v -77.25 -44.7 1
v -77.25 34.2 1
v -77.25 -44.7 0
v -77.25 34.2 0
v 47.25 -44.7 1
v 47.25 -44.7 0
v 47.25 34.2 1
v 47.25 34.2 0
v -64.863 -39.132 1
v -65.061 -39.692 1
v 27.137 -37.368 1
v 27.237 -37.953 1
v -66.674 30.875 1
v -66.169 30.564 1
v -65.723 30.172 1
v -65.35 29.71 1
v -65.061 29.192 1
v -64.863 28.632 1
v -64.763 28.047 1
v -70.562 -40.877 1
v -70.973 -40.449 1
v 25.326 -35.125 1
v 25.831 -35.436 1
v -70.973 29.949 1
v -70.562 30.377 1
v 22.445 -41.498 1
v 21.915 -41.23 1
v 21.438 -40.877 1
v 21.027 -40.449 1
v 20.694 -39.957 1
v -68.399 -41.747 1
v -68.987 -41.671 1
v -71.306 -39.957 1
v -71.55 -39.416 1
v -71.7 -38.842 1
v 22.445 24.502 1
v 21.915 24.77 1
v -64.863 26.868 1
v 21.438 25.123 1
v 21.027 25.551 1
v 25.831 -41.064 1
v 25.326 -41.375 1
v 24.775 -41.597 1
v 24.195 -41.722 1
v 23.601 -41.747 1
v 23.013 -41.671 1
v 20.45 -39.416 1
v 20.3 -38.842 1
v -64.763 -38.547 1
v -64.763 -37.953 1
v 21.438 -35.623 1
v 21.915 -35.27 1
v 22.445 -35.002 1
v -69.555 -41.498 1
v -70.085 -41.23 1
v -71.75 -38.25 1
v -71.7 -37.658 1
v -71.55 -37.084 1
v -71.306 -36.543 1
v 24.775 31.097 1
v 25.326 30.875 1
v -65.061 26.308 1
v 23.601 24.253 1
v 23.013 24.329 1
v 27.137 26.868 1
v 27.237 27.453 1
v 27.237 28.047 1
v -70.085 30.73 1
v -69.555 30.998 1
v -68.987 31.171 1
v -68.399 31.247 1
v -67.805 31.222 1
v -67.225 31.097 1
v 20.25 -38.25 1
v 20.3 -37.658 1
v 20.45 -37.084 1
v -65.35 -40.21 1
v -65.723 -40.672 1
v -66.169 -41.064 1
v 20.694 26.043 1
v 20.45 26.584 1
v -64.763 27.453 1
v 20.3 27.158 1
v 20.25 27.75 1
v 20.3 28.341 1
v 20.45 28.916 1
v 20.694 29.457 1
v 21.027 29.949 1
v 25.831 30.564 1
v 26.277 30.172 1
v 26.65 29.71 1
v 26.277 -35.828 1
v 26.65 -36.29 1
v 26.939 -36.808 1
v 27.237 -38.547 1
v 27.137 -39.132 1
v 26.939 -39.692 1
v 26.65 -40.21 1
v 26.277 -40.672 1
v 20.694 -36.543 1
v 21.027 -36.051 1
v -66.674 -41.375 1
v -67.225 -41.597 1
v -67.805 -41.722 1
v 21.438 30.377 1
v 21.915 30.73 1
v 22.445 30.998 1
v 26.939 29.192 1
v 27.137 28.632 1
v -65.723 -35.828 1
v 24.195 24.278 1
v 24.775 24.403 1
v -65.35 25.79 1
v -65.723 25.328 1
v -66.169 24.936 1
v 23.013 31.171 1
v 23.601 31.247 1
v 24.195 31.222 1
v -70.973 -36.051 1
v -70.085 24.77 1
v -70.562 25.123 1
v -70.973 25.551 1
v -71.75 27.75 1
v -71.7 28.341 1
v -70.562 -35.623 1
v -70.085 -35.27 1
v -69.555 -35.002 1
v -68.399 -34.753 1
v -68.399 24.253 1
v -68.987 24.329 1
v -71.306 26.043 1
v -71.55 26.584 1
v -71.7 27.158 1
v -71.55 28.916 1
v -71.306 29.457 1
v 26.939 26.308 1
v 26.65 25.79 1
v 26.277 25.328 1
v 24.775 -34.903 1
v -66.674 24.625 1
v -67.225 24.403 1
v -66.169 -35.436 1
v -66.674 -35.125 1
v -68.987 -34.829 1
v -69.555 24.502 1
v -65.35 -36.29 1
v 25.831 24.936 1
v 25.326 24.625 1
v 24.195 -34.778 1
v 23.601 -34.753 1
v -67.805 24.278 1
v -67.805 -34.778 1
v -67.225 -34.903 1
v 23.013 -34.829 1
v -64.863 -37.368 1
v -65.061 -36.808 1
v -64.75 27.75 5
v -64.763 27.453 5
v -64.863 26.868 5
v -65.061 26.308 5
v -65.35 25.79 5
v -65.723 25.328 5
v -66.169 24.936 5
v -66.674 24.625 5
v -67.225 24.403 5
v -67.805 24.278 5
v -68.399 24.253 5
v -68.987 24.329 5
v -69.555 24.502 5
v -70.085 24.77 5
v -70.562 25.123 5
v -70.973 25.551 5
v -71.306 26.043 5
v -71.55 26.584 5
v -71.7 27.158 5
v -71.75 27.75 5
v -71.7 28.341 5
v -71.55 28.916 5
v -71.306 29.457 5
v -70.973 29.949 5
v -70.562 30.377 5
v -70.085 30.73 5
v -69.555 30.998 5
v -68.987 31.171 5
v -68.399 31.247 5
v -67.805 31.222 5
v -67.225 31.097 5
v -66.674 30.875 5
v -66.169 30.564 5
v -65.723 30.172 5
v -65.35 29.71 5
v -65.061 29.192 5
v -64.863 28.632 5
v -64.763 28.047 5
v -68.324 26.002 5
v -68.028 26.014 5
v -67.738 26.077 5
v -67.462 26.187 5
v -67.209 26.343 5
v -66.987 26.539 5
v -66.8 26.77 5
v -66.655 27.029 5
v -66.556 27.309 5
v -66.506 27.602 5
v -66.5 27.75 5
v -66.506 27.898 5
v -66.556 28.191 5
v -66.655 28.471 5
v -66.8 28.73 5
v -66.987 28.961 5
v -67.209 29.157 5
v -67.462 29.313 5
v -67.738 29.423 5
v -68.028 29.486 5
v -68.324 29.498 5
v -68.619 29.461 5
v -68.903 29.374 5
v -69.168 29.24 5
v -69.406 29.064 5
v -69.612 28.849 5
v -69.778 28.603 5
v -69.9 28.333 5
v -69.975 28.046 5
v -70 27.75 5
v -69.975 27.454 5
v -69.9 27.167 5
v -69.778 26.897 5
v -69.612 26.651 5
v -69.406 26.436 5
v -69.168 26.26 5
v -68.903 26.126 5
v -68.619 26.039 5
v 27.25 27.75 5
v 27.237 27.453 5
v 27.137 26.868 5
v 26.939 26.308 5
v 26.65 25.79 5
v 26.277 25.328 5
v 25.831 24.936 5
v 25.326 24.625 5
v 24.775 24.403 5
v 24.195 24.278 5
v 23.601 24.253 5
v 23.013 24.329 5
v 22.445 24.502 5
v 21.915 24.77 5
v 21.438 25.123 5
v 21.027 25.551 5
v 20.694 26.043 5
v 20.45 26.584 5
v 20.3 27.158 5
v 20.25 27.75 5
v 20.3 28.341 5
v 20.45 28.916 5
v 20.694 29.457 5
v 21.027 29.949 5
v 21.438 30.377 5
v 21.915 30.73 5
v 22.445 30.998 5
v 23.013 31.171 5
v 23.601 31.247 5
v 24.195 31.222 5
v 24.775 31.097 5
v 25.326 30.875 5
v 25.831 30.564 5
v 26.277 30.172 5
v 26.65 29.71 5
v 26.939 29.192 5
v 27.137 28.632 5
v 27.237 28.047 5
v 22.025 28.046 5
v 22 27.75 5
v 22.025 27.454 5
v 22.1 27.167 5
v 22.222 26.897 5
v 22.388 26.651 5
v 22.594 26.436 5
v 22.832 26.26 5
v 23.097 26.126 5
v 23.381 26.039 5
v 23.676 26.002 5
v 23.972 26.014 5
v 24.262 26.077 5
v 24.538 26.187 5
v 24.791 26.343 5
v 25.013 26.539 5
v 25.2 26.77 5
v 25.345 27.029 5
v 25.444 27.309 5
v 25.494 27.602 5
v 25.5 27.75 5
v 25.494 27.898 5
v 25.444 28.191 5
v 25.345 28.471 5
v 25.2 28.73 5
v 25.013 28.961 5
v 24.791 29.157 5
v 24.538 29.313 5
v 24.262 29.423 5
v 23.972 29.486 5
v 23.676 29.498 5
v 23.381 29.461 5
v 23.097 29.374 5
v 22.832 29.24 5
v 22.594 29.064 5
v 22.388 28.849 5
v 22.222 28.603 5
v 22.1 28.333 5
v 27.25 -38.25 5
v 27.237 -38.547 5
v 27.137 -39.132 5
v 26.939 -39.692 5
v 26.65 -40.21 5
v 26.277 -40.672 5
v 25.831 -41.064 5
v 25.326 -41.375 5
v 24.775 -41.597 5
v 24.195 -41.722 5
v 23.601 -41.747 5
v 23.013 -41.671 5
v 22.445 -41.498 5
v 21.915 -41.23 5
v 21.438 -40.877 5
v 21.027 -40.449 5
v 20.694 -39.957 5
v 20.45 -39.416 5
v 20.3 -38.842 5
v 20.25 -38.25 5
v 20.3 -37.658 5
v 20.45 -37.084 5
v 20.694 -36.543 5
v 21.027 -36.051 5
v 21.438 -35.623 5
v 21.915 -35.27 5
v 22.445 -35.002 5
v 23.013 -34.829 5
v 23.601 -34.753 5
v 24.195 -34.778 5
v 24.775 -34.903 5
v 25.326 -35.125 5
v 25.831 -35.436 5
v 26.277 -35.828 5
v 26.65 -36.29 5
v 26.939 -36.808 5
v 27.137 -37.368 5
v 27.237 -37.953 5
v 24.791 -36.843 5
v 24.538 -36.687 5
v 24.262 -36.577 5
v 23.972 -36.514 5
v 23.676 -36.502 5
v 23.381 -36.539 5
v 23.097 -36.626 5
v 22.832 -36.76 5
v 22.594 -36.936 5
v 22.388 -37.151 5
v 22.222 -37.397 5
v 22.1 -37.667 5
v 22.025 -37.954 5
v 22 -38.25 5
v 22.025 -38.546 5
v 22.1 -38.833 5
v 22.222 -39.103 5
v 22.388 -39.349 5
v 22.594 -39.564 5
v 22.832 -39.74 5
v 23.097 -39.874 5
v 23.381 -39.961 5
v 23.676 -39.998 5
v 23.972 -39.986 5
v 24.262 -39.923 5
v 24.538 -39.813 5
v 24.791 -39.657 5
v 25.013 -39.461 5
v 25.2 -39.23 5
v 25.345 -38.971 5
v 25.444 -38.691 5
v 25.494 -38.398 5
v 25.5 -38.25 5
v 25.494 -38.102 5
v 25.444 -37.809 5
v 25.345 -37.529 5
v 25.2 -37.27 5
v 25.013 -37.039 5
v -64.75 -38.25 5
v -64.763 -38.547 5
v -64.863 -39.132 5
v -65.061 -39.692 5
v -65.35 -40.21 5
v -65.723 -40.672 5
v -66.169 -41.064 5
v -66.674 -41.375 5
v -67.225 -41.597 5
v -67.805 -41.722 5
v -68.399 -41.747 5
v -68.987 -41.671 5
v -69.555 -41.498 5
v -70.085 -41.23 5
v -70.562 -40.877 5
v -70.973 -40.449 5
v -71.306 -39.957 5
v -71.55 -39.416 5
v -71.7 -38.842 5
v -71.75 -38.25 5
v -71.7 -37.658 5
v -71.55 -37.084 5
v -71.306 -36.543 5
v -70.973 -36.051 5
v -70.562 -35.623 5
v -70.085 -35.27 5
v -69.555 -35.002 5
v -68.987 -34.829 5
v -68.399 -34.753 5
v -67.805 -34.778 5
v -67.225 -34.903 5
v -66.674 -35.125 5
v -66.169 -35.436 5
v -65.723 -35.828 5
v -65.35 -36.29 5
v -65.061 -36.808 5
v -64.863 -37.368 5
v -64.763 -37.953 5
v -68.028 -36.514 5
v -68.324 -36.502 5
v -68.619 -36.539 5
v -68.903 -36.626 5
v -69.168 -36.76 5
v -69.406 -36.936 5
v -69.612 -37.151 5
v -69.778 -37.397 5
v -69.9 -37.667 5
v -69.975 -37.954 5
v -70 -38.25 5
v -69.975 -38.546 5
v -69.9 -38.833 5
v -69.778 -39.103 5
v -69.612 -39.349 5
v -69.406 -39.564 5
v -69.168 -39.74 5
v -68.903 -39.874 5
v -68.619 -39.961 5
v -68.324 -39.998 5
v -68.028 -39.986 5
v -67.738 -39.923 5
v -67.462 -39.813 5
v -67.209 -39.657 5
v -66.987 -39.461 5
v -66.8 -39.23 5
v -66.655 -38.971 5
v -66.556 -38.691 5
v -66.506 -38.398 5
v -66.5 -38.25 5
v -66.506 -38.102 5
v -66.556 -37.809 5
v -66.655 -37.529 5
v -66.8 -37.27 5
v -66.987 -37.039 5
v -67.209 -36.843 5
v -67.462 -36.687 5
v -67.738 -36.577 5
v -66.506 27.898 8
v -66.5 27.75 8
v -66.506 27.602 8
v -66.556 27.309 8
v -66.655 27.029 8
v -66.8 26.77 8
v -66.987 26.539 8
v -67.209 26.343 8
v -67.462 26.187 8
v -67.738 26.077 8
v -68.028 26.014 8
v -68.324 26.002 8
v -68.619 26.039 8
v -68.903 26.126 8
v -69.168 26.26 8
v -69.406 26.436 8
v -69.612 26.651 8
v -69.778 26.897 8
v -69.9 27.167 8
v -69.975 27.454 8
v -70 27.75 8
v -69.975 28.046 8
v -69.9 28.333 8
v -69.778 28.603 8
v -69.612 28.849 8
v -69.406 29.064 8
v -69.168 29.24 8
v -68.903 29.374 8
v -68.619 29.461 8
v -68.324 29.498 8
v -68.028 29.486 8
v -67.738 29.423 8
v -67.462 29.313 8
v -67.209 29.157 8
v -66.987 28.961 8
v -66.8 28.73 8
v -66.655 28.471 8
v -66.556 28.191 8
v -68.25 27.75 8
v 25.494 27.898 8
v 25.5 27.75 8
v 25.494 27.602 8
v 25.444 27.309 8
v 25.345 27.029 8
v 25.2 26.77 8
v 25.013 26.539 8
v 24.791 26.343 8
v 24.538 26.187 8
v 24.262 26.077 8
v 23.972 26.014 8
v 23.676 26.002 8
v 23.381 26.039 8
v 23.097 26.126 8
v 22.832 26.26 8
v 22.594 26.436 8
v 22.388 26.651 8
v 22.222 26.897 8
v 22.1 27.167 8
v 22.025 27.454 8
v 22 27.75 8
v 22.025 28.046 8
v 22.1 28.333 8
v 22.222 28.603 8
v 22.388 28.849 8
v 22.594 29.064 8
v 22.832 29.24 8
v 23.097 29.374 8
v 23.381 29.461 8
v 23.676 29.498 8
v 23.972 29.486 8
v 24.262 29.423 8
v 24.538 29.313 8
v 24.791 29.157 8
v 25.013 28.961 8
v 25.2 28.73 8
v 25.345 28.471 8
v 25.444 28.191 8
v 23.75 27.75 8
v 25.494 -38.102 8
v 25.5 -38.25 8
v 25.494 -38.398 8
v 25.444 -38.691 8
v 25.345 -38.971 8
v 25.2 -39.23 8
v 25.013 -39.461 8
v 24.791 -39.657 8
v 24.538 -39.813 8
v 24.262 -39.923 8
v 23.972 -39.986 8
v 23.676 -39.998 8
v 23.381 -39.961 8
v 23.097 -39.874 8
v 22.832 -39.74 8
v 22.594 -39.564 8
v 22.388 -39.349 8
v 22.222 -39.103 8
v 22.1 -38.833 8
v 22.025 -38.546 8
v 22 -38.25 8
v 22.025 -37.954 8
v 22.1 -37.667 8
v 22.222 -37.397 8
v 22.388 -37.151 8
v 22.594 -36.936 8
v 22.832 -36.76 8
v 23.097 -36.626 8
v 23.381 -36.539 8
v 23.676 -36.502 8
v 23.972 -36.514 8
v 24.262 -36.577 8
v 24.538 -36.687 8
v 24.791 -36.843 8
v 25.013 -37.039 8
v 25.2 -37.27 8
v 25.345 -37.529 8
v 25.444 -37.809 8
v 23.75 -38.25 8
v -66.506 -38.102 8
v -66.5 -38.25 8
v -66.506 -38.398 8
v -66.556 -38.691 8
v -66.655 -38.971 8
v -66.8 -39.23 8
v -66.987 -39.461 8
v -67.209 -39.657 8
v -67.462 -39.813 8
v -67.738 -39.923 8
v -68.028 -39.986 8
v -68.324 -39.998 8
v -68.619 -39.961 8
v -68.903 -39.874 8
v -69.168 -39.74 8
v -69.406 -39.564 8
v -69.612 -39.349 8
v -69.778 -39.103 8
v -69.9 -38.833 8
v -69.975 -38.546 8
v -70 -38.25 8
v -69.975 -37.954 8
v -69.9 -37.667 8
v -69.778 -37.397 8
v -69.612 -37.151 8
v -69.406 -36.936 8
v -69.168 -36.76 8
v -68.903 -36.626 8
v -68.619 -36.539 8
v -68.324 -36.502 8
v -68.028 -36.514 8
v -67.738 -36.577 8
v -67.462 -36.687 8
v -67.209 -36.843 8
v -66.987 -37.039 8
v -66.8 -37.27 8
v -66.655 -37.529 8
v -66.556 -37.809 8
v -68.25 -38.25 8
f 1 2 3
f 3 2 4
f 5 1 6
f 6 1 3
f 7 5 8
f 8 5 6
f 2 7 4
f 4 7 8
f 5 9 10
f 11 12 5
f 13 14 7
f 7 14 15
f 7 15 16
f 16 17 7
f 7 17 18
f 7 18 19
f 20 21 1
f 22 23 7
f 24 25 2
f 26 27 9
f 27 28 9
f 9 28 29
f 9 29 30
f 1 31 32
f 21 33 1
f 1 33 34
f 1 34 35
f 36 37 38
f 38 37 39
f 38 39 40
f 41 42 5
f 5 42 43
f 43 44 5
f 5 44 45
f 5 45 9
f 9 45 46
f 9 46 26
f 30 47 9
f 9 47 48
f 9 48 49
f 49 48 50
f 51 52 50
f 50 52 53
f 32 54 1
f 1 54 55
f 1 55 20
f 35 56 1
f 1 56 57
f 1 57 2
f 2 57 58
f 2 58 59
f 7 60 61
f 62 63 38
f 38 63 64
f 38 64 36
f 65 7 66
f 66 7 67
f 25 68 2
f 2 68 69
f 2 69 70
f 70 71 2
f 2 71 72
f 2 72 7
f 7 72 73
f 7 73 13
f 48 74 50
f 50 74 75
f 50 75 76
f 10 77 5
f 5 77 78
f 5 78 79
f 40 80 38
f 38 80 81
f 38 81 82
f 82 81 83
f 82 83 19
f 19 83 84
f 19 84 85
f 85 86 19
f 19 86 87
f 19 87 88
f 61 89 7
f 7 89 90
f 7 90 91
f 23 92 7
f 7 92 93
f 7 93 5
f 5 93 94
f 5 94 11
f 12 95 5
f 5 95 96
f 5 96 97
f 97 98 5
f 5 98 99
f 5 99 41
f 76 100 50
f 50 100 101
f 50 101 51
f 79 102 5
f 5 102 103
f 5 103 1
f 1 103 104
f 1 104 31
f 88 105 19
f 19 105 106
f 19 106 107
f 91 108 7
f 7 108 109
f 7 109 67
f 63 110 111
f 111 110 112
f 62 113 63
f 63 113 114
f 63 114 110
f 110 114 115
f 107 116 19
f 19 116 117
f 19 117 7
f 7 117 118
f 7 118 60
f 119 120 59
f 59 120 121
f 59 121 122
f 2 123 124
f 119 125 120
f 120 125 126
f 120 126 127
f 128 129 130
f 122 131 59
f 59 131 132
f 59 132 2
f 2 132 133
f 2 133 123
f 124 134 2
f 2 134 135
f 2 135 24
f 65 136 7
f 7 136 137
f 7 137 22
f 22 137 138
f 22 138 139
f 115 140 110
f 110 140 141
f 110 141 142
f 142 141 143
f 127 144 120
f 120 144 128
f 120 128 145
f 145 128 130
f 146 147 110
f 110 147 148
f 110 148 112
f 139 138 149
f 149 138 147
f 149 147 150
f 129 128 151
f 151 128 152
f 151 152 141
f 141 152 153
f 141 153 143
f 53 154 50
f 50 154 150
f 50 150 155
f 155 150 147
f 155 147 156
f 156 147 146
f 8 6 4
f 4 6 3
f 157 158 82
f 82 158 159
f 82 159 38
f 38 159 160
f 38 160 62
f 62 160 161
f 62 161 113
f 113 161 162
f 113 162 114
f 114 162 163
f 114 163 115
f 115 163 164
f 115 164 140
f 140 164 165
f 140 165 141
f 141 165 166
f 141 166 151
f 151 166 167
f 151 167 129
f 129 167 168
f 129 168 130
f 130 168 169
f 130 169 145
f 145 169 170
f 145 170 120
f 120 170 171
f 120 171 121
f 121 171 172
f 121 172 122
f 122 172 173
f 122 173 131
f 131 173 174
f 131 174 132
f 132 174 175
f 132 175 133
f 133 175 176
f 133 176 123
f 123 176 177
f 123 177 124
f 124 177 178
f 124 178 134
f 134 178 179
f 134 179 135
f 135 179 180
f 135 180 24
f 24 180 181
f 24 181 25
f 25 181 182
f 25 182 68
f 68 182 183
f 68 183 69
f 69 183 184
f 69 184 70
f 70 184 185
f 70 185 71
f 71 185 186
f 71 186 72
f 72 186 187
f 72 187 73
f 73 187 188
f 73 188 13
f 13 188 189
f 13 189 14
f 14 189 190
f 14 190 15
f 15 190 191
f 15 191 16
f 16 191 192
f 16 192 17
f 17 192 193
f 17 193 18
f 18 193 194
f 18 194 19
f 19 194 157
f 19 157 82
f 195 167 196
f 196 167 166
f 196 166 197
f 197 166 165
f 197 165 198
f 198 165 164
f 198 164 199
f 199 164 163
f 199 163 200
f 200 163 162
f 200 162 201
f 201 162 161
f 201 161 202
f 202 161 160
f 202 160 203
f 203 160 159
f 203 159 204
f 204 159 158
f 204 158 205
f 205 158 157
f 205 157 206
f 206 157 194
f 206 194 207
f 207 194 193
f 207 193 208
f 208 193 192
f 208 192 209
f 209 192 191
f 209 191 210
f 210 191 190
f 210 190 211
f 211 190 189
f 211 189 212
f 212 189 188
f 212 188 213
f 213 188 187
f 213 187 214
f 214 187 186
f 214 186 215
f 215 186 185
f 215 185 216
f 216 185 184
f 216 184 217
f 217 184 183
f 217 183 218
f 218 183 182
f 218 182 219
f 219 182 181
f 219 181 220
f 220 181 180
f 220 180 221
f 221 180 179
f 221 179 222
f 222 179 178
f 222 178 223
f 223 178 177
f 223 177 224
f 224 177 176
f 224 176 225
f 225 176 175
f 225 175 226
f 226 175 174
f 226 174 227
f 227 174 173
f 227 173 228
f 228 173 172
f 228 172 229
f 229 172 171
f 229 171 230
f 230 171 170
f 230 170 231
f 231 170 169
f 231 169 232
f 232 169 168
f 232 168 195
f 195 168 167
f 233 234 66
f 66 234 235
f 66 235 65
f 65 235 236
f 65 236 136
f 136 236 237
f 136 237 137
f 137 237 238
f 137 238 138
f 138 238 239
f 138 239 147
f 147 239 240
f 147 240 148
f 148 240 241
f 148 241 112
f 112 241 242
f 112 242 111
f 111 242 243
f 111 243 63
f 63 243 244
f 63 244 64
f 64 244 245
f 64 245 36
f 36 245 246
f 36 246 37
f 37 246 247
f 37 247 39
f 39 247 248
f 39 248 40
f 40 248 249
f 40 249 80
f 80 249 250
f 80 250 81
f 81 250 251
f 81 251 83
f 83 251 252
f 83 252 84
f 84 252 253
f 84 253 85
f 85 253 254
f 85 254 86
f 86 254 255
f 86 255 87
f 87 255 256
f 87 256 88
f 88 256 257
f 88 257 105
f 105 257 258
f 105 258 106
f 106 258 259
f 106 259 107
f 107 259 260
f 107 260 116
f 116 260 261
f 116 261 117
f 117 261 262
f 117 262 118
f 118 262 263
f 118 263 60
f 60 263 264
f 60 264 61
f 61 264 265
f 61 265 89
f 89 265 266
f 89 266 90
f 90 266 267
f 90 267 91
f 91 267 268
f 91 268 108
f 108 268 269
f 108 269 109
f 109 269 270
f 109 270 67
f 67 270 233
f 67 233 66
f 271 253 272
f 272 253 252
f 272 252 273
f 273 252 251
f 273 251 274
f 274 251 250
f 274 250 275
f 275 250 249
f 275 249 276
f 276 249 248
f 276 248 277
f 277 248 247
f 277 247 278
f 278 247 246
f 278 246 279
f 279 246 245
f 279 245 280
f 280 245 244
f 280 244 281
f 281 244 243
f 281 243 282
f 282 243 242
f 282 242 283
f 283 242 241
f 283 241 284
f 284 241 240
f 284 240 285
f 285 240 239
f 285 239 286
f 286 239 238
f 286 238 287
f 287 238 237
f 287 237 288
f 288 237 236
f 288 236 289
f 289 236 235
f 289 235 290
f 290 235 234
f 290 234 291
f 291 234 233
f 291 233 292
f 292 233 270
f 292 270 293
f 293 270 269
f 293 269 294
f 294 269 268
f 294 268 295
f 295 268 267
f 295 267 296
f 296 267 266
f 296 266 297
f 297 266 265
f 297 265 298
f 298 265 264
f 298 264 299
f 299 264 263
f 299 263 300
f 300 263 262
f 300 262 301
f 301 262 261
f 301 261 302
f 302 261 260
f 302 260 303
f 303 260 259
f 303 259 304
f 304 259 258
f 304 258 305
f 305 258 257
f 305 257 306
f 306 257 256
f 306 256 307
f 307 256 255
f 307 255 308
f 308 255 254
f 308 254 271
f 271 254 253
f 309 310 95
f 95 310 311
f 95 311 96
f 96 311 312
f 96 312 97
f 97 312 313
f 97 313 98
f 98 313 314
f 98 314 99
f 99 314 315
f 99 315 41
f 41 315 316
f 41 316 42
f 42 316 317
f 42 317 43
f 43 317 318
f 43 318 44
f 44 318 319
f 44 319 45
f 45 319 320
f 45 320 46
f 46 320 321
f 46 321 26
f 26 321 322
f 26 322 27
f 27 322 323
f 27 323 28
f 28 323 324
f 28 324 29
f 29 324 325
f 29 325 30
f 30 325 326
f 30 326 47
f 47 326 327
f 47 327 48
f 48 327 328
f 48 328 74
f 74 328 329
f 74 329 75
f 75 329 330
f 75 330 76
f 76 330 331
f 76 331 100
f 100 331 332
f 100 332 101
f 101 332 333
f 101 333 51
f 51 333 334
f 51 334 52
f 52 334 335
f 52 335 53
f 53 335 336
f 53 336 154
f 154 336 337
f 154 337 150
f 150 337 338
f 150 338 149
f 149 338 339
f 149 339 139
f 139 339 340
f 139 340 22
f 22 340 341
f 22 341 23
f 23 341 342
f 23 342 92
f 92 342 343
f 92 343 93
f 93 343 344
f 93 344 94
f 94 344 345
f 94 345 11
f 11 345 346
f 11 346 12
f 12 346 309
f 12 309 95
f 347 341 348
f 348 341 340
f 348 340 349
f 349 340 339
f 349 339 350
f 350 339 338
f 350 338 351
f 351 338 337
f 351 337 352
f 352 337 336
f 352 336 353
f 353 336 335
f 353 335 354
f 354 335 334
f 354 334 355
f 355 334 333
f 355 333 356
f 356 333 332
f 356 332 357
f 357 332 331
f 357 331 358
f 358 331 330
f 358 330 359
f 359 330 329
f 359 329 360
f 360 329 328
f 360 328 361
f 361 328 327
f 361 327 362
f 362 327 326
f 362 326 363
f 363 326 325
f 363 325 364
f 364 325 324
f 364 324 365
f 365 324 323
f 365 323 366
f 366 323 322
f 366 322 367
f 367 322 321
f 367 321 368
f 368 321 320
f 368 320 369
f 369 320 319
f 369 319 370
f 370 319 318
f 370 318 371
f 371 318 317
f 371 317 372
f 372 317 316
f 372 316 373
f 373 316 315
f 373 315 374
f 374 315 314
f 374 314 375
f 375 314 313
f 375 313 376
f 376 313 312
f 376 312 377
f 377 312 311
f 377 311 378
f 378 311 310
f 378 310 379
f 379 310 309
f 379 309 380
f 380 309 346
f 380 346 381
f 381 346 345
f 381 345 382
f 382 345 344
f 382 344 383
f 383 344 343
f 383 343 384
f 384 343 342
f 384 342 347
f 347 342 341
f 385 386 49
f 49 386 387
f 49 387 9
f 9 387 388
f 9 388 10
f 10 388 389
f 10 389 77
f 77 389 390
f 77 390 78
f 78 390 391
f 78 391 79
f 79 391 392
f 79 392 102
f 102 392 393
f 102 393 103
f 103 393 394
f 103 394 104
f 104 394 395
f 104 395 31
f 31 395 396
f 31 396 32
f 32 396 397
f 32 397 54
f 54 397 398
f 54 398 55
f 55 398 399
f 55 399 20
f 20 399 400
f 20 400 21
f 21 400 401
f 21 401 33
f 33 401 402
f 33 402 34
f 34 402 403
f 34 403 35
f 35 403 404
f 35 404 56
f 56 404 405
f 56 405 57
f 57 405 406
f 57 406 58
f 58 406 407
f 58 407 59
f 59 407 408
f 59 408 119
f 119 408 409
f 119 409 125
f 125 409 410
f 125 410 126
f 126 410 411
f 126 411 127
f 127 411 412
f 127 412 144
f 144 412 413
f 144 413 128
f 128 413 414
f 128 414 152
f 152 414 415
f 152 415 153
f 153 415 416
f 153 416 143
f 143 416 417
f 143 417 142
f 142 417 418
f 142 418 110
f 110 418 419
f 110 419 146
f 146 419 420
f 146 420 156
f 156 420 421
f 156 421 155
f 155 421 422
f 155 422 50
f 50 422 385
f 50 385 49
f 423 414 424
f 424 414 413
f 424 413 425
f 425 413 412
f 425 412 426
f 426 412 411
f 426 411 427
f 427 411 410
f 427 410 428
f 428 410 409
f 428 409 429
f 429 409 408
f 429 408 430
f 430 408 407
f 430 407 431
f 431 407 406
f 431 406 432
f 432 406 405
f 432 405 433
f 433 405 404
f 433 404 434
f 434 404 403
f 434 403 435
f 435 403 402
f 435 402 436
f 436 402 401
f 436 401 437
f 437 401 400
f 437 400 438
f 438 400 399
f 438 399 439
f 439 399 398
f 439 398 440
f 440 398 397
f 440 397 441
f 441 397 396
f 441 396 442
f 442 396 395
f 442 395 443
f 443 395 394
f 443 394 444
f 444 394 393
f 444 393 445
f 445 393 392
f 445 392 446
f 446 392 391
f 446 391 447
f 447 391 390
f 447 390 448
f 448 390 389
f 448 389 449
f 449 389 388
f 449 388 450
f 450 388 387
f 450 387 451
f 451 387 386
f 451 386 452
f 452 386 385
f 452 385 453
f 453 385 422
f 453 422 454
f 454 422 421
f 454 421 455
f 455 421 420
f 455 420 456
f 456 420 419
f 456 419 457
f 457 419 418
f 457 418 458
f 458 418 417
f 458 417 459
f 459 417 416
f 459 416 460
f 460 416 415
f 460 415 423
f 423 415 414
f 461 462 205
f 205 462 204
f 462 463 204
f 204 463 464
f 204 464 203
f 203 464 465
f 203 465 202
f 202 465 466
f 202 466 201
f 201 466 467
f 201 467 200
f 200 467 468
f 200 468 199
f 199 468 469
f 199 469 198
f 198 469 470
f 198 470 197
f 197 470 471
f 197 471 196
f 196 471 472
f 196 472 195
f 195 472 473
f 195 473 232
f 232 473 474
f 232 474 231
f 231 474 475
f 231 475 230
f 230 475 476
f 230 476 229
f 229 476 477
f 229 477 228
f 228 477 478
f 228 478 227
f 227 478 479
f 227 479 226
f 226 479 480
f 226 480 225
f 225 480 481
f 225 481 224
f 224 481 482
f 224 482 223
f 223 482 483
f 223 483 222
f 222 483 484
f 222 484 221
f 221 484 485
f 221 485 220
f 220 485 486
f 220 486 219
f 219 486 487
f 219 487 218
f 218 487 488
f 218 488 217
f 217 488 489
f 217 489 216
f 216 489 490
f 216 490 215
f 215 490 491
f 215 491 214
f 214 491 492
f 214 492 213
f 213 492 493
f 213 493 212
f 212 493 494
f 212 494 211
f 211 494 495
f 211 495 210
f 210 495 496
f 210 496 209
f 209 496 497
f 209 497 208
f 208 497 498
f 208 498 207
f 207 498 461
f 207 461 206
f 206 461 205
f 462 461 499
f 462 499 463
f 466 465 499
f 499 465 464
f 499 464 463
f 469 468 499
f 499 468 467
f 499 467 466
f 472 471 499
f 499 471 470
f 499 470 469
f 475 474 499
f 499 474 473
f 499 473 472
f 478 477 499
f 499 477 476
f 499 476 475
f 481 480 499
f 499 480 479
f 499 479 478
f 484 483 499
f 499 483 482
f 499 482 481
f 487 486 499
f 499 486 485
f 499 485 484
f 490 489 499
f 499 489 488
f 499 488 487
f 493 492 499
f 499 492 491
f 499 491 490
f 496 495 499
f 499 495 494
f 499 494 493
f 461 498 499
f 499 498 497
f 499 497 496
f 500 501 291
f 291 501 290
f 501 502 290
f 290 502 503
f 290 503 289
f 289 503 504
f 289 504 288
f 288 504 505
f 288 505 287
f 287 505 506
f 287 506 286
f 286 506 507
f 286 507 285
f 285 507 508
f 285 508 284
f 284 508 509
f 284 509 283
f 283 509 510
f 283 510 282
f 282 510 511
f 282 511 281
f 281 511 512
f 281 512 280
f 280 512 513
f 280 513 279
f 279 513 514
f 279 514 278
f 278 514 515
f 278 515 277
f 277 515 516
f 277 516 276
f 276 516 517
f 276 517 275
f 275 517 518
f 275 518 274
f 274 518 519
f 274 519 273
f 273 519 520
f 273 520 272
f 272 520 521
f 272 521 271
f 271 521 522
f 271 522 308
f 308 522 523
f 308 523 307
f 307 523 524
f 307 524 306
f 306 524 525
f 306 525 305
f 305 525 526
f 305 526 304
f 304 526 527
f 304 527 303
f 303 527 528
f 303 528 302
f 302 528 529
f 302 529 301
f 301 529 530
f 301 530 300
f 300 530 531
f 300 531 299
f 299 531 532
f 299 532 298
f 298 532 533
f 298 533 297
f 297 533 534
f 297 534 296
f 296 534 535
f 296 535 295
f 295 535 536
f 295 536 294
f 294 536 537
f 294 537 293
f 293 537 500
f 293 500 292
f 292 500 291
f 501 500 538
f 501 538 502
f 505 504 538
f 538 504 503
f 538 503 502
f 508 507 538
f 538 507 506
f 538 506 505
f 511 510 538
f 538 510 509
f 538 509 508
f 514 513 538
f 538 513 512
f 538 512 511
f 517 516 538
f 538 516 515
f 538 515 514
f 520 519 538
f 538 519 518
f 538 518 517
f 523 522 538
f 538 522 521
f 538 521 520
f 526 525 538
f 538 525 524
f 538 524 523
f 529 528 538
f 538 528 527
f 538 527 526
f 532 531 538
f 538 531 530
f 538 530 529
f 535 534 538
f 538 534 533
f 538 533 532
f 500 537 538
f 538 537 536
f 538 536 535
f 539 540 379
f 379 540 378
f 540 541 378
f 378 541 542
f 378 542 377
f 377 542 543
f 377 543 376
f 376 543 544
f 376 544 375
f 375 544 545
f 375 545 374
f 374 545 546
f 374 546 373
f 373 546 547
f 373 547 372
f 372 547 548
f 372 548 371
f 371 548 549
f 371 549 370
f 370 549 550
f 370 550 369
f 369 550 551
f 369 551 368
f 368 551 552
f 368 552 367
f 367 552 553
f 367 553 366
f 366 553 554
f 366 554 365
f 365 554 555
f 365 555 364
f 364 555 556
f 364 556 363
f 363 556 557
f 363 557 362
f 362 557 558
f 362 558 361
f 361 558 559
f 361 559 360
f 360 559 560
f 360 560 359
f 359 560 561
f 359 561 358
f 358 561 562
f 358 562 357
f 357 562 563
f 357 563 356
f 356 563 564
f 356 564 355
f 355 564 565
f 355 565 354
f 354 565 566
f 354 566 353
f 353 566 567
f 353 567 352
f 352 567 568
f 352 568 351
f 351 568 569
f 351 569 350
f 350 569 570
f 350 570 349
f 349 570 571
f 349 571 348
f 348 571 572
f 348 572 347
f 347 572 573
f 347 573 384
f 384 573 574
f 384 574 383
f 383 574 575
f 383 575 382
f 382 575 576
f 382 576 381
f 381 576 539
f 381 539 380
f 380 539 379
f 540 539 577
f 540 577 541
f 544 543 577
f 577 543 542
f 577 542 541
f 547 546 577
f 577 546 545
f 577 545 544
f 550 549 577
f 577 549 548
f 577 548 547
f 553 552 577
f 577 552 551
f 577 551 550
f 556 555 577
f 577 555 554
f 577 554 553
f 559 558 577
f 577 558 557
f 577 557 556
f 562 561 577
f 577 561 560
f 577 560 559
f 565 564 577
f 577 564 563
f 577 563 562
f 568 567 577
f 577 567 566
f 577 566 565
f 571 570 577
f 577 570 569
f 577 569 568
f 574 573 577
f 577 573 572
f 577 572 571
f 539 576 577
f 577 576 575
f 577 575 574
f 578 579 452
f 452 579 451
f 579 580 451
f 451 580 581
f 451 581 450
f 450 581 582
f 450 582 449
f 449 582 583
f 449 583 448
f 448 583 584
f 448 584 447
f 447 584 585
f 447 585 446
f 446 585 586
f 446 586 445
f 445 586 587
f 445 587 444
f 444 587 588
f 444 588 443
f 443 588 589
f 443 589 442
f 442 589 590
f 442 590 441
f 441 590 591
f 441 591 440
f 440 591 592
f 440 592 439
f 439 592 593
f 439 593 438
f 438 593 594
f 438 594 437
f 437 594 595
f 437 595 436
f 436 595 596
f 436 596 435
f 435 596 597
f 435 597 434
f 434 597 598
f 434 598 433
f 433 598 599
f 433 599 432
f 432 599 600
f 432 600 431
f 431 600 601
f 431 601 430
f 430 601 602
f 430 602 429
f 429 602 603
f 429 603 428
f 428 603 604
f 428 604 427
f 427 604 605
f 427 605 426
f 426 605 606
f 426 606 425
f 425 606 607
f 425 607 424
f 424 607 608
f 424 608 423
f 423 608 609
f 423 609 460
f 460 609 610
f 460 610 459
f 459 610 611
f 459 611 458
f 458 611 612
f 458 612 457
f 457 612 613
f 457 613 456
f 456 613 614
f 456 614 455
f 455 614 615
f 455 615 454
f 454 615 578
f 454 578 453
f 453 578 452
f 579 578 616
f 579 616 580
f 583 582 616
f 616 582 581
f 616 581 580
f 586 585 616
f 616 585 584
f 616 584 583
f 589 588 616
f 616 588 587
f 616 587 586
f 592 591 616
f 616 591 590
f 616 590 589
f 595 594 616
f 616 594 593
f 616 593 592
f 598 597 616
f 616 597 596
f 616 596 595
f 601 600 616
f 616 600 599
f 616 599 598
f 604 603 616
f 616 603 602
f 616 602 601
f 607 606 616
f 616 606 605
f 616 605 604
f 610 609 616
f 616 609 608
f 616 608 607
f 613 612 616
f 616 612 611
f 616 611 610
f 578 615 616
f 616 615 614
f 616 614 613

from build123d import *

# Parameters (mm, degrees)
SKETCH1_W           = 124.5
SKETCH1_H           = 78.9
BOSS_EXTRUDE1_DEPTH = 1
SKETCH2_R           = 3.5
BOSS_EXTRUDE2_DEPTH = 4
SKETCH3_R           = 1.75
BOSS_EXTRUDE3_DEPTH = 3


with BuildPart() as part:
    # Sketch1 → Boss-Extrude1 (new body)
    with BuildSketch(Plane.XY):
        with Locations((-15, -5.25)):
            Rectangle(SKETCH1_W, SKETCH1_H)
    extrude(amount=BOSS_EXTRUDE1_DEPTH)

    # Sketch2 → Boss-Extrude2 (add)
    with BuildSketch(Plane.XY.offset(1)):
        with Locations(Location((-68.25, 27.75, 0), (0, 0, 180))):
            Circle(SKETCH2_R)
        with Locations(Location((23.75, 27.75, 0), (0, 0, 180))):
            Circle(SKETCH2_R)
        with Locations(Location((23.75, -38.25, 0), (0, 0, 180))):
            Circle(SKETCH2_R)
        with Locations(Location((-68.25, -38.25, 0), (0, 0, 180))):
            Circle(SKETCH2_R)
    extrude(amount=BOSS_EXTRUDE2_DEPTH)

    # Sketch3 → Boss-Extrude3 (add)
    with BuildSketch(Plane.XY.offset(5)):
        with Locations((-68.25, 27.75)):
            Circle(SKETCH3_R)
        with Locations((23.75, 27.75)):
            Circle(SKETCH3_R)
        with Locations((23.75, -38.25)):
            Circle(SKETCH3_R)
        with Locations((-68.25, -38.25)):
            Circle(SKETCH3_R)
    extrude(amount=BOSS_EXTRUDE3_DEPTH)


solid = part.part
